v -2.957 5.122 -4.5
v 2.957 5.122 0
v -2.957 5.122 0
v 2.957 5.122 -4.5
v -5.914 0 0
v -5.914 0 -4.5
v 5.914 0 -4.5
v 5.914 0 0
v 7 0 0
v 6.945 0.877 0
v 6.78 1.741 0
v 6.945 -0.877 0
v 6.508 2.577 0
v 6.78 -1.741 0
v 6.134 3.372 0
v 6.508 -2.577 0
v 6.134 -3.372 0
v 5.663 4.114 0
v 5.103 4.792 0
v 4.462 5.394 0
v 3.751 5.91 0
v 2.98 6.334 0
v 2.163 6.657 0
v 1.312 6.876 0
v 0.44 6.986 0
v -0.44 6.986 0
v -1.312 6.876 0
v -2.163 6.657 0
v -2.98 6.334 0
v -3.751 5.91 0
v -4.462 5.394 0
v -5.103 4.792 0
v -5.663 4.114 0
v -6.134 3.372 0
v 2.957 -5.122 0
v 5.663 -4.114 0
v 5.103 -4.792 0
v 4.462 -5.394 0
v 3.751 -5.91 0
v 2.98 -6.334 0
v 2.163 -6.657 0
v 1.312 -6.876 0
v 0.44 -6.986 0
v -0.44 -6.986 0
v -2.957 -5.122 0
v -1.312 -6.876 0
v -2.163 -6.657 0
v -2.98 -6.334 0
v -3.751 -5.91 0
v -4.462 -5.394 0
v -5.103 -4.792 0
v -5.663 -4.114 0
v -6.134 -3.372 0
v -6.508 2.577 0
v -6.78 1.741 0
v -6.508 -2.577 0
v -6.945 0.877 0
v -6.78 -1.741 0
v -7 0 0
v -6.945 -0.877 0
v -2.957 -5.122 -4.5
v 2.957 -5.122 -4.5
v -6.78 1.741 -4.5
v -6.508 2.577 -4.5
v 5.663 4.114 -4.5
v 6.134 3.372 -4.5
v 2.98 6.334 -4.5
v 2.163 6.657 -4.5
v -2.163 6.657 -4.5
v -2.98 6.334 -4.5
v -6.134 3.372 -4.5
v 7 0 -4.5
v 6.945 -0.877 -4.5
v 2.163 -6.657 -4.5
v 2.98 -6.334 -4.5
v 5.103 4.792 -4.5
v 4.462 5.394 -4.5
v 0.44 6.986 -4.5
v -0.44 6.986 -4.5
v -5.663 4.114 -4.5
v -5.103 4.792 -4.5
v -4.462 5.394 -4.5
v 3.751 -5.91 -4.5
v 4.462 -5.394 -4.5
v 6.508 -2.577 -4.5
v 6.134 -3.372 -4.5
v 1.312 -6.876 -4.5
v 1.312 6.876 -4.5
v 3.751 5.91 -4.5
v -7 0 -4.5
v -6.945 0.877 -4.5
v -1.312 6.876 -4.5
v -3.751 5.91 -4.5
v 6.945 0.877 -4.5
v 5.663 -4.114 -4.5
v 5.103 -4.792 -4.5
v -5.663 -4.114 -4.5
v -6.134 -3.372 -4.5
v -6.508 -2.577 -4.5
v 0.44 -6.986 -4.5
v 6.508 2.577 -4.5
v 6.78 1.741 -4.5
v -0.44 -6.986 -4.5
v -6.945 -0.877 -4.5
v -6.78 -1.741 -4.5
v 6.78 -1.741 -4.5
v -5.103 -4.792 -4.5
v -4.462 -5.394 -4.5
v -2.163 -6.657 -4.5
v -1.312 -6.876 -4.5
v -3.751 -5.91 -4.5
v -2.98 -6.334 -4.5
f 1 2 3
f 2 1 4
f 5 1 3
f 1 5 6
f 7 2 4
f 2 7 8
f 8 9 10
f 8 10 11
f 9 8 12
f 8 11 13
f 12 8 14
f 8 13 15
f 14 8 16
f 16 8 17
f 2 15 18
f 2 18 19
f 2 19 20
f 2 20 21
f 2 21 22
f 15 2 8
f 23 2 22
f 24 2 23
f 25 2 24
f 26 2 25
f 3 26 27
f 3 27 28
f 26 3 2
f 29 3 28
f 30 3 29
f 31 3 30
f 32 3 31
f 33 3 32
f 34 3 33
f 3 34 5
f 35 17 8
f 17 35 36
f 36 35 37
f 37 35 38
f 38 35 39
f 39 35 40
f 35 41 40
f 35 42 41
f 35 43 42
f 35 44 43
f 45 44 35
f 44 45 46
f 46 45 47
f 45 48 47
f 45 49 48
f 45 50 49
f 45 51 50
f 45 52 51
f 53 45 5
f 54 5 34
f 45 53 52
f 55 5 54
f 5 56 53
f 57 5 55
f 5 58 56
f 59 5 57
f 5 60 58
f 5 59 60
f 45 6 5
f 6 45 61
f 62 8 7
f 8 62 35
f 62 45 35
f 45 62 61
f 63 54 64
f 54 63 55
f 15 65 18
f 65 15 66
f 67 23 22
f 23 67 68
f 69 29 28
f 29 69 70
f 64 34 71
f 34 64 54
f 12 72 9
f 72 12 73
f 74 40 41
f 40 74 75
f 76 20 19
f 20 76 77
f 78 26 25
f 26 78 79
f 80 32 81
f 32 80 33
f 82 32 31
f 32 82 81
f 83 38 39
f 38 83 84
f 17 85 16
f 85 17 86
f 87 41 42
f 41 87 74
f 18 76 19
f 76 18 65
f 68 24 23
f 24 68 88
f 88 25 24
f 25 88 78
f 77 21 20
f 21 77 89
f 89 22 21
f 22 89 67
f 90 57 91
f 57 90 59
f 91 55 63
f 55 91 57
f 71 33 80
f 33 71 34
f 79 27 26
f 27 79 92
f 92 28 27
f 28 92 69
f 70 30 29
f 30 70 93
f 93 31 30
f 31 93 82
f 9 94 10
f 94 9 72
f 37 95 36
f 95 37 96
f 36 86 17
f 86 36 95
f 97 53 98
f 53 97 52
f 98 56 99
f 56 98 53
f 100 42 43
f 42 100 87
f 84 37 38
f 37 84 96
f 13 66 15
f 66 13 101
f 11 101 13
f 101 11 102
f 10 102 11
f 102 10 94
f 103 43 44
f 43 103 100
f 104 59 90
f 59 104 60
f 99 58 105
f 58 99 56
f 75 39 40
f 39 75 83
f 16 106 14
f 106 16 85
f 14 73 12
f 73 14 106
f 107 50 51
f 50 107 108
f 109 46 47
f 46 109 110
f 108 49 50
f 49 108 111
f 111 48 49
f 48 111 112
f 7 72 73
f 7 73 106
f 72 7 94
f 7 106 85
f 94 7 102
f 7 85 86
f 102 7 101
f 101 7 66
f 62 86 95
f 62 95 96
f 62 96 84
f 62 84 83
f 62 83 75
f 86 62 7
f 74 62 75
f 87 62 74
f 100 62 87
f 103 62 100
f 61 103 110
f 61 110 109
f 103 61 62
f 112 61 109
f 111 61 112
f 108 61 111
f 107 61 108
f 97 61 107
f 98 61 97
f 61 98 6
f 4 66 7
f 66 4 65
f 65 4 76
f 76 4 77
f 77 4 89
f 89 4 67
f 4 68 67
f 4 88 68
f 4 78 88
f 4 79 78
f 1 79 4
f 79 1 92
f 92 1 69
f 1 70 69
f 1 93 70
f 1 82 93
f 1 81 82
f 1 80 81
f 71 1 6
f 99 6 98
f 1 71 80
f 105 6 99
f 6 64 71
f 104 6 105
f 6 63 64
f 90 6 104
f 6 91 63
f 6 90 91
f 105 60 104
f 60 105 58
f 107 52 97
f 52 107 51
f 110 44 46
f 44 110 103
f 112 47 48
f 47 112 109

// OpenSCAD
$fn = 50;

difference() {
	union() {
		translate(v = [0, 0, -4.5]) {
			cylinder(h = 4.5, r = 7.0);
		}
	}
	union() {
		translate(v = [0, 0, 0]) {
			rotate(a = [0, 0, 0]) {
				difference() {
					union() {
						translate(v = [0, 0, -5]) {
							linear_extrude(height = 5) {
								polygon(points = [[5.914249999999999, 0.0], [2.957125, 5.1218907443321156], [-2.9571249999999982, 5.1218907443321156], [-5.914249999999999, 7.242867331857232e-16], [-2.9571250000000022, -5.121890744332115], [2.9571249999999956, -5.121890744332118]]);
							}
						}
					}
					union();
				}
			}
		}
		#translate(v = [0, 0, -100.0]) {
			cylinder(h = 200, r = 3.25);
		}
	}
}
